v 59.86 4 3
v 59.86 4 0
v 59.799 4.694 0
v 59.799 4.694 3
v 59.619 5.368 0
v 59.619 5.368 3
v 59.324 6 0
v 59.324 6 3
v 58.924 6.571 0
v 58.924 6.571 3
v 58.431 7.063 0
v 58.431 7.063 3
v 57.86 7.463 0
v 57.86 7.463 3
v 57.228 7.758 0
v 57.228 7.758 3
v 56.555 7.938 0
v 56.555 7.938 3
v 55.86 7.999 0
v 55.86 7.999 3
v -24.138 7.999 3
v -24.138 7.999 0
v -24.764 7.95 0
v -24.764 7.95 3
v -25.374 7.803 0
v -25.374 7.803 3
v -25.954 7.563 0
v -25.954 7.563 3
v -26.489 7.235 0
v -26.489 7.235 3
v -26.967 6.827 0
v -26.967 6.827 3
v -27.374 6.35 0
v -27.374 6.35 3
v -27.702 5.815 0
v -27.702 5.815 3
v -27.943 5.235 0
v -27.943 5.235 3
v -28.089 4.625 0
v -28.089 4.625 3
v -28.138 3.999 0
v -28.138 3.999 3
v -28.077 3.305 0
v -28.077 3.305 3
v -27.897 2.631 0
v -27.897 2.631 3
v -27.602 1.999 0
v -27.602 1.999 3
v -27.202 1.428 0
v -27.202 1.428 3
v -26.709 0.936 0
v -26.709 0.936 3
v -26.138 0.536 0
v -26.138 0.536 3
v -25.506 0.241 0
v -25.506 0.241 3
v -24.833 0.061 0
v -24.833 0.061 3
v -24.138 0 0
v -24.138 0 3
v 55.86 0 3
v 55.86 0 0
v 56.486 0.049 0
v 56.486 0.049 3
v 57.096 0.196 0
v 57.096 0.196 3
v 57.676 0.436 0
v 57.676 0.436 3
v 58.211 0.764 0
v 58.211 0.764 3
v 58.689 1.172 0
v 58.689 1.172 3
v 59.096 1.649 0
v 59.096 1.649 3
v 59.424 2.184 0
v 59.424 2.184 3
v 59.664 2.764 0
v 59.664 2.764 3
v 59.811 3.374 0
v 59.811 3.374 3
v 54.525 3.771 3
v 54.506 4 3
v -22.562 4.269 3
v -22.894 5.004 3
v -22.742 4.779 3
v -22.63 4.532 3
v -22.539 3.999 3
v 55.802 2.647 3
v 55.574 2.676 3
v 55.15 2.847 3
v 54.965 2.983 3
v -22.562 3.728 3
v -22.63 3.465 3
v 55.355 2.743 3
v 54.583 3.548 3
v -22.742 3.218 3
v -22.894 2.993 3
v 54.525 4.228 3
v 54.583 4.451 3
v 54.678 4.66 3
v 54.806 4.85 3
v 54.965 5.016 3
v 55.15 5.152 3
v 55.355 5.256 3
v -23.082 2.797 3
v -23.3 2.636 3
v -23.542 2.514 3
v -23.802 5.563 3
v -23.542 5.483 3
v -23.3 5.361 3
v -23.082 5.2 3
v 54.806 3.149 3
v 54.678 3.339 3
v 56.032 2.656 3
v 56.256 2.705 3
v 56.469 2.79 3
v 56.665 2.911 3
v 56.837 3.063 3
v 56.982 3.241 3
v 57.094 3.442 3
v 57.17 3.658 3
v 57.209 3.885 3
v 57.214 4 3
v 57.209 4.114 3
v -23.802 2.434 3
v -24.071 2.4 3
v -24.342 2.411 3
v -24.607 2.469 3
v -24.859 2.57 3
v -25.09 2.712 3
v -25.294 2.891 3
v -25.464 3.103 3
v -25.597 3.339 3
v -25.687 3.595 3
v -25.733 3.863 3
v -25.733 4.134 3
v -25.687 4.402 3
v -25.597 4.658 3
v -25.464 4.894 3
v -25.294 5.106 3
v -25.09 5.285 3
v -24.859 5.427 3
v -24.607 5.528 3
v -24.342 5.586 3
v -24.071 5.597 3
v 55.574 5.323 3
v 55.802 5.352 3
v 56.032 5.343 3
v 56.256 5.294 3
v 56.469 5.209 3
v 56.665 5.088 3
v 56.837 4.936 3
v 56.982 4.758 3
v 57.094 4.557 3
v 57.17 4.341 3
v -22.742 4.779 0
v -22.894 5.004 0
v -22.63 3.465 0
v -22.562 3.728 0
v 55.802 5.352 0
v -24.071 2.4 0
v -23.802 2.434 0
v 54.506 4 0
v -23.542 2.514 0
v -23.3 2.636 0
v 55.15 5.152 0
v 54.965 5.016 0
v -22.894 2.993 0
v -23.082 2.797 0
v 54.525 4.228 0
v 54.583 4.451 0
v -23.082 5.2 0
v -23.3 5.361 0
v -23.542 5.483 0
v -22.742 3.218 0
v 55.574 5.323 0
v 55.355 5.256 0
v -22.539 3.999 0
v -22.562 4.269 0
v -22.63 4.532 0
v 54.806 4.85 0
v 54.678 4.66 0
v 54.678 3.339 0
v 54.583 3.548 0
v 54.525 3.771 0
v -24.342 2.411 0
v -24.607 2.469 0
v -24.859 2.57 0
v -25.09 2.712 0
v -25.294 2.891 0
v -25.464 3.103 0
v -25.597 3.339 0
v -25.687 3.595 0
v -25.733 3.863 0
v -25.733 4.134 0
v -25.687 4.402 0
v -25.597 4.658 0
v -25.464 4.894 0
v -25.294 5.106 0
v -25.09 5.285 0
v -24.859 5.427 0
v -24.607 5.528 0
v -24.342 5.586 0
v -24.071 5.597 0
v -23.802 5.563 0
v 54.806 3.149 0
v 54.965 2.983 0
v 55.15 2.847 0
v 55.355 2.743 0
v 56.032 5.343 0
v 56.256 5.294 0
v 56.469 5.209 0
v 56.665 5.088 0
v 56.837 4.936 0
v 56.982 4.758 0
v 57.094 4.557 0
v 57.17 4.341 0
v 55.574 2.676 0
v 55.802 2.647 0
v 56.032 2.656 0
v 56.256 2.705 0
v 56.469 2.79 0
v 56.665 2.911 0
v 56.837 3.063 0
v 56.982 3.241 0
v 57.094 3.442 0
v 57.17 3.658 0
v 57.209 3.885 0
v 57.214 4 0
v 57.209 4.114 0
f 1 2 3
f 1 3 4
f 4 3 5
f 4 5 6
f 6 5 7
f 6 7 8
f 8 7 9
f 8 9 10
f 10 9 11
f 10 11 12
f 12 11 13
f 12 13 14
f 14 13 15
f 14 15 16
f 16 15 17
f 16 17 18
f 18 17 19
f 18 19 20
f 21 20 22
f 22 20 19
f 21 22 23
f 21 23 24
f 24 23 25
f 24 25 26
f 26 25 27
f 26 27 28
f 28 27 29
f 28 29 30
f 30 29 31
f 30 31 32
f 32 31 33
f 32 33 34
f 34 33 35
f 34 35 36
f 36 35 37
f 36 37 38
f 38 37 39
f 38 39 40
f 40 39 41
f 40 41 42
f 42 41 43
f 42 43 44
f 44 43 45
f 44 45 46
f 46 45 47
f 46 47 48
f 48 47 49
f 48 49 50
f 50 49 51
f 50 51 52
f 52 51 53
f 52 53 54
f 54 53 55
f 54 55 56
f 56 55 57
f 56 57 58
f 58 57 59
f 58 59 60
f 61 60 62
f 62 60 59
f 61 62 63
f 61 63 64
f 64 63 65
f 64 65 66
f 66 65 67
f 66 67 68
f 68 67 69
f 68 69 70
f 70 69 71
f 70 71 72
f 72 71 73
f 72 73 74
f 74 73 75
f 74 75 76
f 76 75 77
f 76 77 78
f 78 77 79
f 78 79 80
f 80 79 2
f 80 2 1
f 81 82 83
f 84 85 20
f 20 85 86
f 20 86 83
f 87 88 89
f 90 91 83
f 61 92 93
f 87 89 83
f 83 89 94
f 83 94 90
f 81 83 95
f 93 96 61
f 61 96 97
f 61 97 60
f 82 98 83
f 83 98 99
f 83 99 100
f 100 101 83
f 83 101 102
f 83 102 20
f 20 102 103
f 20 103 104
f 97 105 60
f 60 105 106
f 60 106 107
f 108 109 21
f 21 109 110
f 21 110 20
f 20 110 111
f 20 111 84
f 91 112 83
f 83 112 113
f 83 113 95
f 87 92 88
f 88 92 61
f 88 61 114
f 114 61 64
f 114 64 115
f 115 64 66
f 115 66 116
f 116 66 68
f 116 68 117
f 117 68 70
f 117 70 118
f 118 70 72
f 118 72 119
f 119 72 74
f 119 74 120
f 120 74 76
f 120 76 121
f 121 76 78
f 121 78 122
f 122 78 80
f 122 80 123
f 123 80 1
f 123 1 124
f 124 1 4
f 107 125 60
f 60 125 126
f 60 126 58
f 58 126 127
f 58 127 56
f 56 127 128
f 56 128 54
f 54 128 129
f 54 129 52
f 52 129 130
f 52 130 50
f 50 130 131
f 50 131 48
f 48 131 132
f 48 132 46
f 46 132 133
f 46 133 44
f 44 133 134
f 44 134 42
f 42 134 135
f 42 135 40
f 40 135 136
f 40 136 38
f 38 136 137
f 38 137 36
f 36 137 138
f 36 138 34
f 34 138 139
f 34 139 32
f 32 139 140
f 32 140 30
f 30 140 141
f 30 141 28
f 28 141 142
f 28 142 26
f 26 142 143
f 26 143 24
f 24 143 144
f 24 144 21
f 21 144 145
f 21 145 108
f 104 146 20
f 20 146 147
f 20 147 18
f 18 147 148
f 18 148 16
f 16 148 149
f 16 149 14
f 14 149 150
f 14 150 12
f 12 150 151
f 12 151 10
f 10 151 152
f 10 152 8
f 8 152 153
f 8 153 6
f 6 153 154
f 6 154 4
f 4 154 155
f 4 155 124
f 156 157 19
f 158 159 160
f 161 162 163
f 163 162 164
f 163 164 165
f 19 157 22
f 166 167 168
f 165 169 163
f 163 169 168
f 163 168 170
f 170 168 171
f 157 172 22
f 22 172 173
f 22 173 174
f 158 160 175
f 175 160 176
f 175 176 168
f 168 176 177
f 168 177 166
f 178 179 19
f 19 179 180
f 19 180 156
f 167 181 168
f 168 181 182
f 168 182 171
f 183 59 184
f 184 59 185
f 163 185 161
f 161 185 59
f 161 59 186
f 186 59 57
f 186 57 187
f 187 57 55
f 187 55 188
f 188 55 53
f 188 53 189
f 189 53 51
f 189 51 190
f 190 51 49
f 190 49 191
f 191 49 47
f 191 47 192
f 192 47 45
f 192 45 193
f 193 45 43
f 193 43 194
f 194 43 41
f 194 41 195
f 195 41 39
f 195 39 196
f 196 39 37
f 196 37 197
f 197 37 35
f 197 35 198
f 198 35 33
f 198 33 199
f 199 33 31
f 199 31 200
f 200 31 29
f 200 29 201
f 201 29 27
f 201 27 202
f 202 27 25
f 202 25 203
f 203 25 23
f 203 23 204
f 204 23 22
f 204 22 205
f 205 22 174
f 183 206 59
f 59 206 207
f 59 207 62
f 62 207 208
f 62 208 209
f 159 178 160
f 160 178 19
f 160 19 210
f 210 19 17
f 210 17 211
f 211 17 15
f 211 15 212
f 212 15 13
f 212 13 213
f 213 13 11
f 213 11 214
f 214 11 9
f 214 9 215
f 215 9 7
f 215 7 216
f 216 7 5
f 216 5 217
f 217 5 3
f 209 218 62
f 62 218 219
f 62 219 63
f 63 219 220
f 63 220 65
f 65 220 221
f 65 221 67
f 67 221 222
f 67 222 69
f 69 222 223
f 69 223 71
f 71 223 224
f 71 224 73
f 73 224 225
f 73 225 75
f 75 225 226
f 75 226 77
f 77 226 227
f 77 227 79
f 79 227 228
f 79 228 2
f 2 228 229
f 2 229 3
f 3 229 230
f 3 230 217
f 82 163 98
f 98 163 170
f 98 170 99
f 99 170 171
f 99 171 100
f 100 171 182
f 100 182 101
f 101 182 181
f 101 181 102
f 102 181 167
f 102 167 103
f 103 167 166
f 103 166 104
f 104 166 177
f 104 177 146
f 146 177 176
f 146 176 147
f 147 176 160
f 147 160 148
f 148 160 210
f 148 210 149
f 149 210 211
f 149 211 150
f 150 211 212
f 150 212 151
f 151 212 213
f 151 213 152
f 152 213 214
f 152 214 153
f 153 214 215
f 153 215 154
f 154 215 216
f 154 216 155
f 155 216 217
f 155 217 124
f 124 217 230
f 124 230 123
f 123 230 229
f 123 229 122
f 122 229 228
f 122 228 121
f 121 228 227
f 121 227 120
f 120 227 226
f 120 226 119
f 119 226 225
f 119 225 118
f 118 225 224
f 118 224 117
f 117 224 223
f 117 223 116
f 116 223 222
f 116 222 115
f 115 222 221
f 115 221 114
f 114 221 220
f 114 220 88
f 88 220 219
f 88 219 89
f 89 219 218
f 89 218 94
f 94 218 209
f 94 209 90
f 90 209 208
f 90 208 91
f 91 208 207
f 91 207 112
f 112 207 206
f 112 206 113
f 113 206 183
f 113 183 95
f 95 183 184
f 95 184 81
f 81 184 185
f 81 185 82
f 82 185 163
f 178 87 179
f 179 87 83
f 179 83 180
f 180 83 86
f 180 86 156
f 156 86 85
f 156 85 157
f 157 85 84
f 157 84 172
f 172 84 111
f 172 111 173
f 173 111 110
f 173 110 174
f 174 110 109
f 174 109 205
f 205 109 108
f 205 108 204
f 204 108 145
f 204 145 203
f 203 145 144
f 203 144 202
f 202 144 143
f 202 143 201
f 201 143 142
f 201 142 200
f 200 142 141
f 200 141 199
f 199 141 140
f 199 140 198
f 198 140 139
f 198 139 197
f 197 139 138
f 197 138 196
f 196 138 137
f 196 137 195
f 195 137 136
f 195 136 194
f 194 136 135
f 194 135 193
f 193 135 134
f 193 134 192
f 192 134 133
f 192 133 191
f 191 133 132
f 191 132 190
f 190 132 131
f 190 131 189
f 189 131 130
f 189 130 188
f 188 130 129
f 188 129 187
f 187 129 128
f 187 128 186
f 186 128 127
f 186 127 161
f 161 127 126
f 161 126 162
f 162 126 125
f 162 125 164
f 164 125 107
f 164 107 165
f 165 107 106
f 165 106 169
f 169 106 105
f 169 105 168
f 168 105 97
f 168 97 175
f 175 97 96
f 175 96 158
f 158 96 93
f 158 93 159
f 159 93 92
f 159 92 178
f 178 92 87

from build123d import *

# Parameters (mm, degrees)
SKETCH_1_R          = 1.354010502
EXTRUDE_1_DEPTH     = 3
SKETCH_2_R          = 1.6
CUT_EXTRUDE_1_DEPTH = 61.466769186


with BuildPart() as part:
    # 草图1 → 凸台-拉伸1 (new body)
    with BuildSketch(Plane(origin=(0, 0, 0), x_dir=(-1, 0, 0), z_dir=(0, 0, -1))):
        with BuildLine():
            Line((-55.860221974, 0), (24.13832066, 0))
            ThreePointArc((24.13832066, 0), (26.966394209, 1.171219344), (28.138320535, 3.999))
            ThreePointArc((28.138320535, 3.999), (26.96674766, 6.827427125), (24.138320535, 7.999))
            Line((24.138320535, 7.999), (-55.860222099, 7.999))
            ThreePointArc((-55.860222099, 7.999), (-58.688295648, 6.827780656), (-59.860221974, 4))
            ThreePointArc((-59.860221974, 4), (-58.688649099, 1.171572875), (-55.860221974, 0))
        make_face()
        with Locations((24.138809001, 3.998511534)):
            Circle(SKETCH_1_R, mode=Mode.SUBTRACT)
        with Locations((-55.859733508, 3.999511534)):
            Circle(SKETCH_1_R, mode=Mode.SUBTRACT)
    extrude(amount=-EXTRUDE_1_DEPTH)

    # 草图2 → 切除-拉伸1 (cut, through all)
    with BuildSketch(Plane.XY.offset(3)):
        with Locations((-24.138809001, 3.998511534)):
            Circle(SKETCH_2_R)
    extrude(amount=-CUT_EXTRUDE_1_DEPTH, mode=Mode.SUBTRACT)


solid = part.part
